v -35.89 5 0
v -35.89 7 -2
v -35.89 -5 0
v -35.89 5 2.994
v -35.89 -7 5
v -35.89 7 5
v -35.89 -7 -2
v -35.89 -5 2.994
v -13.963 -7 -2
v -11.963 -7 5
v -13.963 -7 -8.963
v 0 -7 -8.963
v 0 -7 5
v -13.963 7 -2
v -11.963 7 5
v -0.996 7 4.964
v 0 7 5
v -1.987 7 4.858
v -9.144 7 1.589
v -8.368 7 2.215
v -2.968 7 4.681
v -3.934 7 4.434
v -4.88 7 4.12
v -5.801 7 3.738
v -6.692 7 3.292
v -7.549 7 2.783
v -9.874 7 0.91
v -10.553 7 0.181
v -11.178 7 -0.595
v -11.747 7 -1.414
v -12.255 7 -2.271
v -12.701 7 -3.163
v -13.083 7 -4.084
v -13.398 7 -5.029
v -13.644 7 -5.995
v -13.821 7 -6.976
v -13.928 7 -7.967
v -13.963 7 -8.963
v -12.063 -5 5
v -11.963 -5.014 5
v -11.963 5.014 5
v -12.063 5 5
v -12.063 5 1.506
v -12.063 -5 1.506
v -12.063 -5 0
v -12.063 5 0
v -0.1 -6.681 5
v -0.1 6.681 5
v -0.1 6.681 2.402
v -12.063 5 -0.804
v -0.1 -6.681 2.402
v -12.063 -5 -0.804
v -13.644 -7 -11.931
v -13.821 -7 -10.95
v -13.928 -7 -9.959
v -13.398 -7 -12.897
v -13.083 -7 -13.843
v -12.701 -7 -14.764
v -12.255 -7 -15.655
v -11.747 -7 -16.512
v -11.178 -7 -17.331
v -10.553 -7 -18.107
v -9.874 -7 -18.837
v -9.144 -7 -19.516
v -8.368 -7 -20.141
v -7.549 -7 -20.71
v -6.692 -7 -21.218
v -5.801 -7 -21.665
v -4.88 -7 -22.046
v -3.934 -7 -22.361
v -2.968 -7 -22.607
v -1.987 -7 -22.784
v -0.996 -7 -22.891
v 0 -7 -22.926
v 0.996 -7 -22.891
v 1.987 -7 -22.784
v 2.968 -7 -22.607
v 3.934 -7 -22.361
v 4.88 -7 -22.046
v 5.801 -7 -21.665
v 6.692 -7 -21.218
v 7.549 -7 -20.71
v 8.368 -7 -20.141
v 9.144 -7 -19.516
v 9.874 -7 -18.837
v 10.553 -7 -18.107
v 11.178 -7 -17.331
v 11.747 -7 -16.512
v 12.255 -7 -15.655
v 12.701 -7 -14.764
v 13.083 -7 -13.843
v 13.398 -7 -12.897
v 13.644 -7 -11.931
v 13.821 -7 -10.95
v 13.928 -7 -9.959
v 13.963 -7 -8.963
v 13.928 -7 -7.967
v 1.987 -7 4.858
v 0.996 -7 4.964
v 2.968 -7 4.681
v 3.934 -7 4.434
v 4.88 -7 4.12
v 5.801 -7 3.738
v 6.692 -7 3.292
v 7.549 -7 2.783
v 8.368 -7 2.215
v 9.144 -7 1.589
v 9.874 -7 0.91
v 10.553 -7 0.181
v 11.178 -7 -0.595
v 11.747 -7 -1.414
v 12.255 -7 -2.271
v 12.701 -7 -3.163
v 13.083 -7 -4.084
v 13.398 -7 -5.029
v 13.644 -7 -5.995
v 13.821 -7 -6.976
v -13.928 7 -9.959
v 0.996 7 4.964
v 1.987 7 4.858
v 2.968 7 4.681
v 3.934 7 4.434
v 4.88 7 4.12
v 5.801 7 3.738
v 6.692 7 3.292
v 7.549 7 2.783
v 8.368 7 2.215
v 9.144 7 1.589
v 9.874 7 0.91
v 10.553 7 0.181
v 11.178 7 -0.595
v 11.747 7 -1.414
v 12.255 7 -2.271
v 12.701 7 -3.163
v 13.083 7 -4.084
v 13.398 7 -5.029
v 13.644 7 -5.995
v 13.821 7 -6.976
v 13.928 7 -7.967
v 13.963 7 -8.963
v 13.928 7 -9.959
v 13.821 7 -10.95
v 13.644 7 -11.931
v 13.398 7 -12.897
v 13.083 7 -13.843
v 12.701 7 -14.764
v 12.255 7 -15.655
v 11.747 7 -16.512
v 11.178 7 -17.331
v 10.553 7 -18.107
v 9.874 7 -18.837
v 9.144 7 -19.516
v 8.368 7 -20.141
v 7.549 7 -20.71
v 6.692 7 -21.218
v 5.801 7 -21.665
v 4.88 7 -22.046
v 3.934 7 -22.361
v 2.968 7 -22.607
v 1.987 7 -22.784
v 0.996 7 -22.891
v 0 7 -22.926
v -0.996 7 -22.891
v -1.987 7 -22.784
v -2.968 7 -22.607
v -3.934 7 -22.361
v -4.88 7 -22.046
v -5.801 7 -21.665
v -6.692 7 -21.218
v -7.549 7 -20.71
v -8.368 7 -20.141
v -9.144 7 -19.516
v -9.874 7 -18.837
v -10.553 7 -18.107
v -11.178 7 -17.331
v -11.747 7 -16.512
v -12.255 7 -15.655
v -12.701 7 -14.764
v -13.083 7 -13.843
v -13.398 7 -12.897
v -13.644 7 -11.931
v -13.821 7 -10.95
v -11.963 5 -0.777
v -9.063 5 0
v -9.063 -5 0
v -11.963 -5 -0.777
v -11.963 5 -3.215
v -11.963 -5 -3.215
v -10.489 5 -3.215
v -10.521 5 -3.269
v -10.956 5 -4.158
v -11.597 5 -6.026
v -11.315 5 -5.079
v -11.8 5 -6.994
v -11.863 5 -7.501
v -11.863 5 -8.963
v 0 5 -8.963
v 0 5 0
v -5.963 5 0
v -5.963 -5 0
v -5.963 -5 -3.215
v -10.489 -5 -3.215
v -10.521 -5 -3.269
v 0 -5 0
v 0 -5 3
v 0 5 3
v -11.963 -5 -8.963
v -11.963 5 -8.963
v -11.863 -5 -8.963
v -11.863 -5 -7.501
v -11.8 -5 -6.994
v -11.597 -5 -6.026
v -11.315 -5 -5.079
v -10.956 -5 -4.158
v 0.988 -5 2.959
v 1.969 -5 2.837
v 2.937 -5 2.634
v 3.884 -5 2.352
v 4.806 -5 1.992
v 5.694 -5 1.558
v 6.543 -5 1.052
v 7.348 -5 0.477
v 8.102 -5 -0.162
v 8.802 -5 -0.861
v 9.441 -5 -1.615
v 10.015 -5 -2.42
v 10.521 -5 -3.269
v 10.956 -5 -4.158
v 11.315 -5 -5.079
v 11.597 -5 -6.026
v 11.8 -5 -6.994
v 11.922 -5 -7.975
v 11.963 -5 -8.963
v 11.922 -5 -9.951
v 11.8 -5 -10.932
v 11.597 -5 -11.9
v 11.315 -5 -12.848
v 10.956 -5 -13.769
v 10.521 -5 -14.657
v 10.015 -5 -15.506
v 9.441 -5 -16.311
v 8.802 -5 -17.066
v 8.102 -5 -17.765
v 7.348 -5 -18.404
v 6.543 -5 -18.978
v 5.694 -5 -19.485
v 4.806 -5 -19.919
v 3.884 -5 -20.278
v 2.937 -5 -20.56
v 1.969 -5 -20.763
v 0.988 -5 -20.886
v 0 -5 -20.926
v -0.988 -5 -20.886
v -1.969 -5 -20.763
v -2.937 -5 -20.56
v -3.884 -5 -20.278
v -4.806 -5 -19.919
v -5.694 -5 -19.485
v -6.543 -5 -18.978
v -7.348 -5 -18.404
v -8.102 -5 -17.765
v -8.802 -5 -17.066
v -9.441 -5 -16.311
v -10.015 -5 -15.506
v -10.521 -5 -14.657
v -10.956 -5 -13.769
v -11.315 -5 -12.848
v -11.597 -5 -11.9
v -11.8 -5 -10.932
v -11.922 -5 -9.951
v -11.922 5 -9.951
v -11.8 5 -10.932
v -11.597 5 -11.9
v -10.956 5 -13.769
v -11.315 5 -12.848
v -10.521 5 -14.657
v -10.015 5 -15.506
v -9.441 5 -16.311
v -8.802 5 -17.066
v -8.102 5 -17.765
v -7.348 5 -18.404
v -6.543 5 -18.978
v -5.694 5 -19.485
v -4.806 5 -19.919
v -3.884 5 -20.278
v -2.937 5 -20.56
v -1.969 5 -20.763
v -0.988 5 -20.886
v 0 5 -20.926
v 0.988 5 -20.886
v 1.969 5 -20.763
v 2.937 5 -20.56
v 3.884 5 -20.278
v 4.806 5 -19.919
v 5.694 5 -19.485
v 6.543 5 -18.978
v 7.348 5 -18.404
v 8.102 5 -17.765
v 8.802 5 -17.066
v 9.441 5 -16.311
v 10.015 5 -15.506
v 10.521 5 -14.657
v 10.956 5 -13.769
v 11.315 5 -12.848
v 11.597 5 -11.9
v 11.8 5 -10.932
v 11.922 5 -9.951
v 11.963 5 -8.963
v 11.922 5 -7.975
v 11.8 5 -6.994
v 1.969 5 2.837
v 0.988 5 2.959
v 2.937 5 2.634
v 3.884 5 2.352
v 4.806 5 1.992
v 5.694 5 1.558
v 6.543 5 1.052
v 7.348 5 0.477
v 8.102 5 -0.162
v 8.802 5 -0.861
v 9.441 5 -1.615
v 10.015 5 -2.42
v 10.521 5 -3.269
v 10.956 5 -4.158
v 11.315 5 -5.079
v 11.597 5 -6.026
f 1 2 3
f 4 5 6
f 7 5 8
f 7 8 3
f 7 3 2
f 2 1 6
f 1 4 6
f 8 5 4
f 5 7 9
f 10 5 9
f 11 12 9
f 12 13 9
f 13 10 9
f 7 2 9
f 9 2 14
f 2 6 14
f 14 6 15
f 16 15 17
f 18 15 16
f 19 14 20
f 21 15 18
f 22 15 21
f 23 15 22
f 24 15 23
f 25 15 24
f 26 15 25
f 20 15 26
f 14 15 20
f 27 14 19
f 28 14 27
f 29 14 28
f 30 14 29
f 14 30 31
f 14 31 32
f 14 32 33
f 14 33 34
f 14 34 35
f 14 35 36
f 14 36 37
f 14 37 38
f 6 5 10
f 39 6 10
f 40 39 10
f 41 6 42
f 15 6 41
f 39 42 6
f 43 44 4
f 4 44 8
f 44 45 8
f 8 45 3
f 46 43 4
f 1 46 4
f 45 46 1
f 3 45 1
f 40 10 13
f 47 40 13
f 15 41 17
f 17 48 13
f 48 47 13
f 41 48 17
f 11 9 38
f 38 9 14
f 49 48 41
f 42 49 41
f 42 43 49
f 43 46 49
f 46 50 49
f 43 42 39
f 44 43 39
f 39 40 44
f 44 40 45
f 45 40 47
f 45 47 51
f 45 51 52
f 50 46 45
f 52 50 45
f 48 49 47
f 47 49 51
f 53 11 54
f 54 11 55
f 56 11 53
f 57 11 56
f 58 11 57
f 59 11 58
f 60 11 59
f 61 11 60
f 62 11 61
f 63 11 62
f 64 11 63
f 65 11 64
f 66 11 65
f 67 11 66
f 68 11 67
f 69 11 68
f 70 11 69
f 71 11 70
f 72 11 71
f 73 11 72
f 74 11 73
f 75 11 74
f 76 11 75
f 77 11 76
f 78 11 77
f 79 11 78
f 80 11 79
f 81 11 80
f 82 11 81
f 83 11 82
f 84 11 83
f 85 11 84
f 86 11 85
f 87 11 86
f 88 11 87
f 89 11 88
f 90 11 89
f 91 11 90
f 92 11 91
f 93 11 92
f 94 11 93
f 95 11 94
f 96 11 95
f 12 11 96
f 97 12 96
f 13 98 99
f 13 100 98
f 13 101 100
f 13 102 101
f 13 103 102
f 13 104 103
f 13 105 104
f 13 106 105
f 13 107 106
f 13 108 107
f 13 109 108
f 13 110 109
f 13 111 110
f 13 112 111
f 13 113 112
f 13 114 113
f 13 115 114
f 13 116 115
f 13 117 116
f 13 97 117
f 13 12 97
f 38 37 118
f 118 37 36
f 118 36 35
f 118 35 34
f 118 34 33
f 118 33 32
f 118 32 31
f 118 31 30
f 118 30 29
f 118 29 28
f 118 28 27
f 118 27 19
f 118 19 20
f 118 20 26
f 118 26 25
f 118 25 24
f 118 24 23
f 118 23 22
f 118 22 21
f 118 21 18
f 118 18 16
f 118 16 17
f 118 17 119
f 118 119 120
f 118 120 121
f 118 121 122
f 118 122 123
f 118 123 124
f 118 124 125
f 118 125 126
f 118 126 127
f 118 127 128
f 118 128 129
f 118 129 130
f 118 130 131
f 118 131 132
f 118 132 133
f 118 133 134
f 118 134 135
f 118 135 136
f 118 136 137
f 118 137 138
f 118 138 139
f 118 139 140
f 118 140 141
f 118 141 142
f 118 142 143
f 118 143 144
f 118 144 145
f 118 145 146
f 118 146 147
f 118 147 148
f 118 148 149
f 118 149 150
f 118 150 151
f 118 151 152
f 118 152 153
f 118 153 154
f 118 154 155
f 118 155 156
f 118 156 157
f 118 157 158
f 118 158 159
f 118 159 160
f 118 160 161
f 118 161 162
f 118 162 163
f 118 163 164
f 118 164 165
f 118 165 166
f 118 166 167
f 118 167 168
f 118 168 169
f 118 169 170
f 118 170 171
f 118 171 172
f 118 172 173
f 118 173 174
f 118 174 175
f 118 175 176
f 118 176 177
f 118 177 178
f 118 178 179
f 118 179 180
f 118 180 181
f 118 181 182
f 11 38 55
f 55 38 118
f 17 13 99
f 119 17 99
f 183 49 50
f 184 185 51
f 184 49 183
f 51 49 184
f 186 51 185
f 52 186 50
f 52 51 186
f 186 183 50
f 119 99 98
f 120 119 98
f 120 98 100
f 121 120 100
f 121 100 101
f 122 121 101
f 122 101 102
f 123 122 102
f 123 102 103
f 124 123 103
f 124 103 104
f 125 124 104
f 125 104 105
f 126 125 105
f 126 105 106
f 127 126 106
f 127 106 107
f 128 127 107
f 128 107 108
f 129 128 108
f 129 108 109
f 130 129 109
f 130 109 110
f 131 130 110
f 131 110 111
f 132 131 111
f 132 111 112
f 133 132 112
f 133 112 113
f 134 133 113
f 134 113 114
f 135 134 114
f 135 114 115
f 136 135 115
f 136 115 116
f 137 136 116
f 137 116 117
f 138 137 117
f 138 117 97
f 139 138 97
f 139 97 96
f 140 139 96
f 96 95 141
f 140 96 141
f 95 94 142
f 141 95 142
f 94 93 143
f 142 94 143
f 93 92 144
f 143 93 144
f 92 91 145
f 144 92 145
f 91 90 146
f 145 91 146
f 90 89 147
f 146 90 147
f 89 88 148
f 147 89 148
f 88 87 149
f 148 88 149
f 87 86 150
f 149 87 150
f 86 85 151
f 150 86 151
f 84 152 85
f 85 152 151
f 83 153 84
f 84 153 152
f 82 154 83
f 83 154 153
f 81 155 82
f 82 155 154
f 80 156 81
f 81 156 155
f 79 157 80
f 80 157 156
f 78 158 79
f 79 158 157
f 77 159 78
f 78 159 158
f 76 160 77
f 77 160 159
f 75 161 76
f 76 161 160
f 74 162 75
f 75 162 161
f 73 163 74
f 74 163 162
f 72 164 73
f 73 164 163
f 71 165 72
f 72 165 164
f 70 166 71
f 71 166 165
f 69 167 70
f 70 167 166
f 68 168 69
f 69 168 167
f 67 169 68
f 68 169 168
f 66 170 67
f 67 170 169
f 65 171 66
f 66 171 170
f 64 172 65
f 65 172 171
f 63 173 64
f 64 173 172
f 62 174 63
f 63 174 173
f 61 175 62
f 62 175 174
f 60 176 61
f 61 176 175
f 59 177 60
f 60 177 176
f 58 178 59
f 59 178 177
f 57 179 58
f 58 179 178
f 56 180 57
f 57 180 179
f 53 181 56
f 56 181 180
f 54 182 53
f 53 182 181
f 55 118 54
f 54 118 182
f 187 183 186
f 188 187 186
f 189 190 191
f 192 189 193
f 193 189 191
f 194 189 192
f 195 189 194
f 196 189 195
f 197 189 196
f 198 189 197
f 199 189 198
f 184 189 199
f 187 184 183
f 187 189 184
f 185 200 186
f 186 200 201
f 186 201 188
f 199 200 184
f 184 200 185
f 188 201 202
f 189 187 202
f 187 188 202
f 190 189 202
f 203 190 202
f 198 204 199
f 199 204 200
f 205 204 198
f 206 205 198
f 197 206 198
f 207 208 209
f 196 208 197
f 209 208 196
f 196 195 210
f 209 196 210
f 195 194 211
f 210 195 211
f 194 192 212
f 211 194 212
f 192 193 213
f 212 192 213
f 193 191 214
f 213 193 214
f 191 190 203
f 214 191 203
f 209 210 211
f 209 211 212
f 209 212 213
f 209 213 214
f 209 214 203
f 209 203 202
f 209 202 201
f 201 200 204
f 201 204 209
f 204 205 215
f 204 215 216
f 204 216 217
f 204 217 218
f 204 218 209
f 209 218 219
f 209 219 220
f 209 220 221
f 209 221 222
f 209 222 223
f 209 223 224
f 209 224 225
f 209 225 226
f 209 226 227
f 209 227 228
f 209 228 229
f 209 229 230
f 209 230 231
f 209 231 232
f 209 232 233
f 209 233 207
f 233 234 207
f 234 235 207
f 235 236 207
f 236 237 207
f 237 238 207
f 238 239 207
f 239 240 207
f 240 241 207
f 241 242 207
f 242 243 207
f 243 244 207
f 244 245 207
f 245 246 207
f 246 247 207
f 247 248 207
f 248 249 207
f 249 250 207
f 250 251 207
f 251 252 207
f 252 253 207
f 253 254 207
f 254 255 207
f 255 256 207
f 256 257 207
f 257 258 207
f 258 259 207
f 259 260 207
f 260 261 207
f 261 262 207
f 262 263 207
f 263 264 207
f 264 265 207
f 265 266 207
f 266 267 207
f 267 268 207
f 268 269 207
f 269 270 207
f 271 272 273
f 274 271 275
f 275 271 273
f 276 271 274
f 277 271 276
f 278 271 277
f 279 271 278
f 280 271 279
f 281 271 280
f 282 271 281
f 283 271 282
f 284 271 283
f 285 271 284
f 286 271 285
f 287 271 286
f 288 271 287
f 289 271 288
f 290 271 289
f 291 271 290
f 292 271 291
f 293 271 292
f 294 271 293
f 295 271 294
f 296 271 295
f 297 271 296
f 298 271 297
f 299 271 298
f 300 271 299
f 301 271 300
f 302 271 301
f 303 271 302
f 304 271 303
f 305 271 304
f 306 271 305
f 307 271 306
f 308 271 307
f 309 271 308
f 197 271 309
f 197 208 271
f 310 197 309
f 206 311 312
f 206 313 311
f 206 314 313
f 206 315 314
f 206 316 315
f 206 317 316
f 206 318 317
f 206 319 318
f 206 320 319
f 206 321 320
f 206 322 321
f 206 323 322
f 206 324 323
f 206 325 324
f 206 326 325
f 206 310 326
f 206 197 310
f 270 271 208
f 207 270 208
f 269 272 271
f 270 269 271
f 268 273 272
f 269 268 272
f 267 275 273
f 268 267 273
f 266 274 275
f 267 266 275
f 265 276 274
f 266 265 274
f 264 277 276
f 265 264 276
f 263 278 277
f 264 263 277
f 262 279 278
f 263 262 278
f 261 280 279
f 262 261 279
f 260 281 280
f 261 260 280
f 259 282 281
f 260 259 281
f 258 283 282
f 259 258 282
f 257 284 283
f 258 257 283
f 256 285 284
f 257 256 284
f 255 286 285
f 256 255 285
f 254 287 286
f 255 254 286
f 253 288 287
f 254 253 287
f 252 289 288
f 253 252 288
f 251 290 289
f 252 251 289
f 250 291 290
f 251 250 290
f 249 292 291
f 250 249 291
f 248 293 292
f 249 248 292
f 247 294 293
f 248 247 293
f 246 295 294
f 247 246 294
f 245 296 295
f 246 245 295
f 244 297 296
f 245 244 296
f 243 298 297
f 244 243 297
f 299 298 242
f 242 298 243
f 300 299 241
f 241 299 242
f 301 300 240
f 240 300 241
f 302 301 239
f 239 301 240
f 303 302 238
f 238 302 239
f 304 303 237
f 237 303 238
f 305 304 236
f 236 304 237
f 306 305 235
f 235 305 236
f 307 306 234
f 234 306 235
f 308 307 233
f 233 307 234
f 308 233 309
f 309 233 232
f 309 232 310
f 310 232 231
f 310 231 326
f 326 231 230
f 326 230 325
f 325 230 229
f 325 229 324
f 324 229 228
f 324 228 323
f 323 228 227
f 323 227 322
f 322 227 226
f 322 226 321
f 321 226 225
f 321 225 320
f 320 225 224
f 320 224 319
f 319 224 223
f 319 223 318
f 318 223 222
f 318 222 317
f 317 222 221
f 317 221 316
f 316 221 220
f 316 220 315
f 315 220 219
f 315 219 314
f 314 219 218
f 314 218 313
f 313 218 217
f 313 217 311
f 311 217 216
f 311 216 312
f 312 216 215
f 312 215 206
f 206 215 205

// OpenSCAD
E = 0.1;
$fa = 3;
$fs = 1;

FLUE_LENGTH = 30;
FLUE_WIDTH = 10;
FLUE_HEIGHT = 3;
FLUE_TAPER = 0.5;

TRUNCATE = 0.9;

GAP_LENGTH = FLUE_HEIGHT * FLUE_TAPER * 2;

EXIT_ANGLE = 15;
EXIT_FLARE = 8;

SOUND_MPS = 344;
C = SOUND_MPS * 1000 / 2 / PI;

// Misc wall thickness
THICKNESS = 2;

module whistle_ball(length=FLUE_LENGTH, width=FLUE_WIDTH, volume=10000) {
  r_body = cap_radius(volume, TRUNCATE);
  r_body_outer = r_body + THICKNESS;
  top = 2 * r_body_outer * TRUNCATE;

  ang = 40;
  difference() {
    union() {
      rotate(ang, v=[0, 1, 0])
        translate([0, 0, FLUE_HEIGHT / 2])
        mouthpiece(length, width);
      translate([0, 0, -top + 1.5 * FLUE_HEIGHT])
        ball(volume);
    }
    rotate(ang, v=[0, 1, 0])
      fipple_cut(length, width);
  }
}

module whistle_cylinder(flue_width=FLUE_WIDTH,
                        flue_height=FLUE_HEIGHT,
                        pitch=2000,
                        volume) {
  gap = flue_height * FLUE_TAPER * 2;
  area = gap * flue_width;
  width = flue_width + 2 * THICKNESS;
  // Effective length???
  length = THICKNESS + flue_height;
  echo("Effective mouth length", length);
  _volume = volume == undef ? volume_of(pitch, area, length) : volume;
  r = circle_radius(_volume / flue_width);
  flue_length = 2 * r;
  echo("Radius", r);
  difference() {
    union() {
      translate([-flue_length / 2 - r, 0, flue_height / 2])
        cube([flue_length, width, flue_height + 2 * THICKNESS], center=true);
      translate([0, 0, -r + flue_height])
        rotate(90, v=[1, 0, 0])
          difference() {
            cylinder(r=r + THICKNESS, h=width, center=true);
            cylinder(r=r, h=flue_width, center=true);
          }
      translate([-(r + THICKNESS) / 2, 0, -(r + THICKNESS) / 2 + flue_height + THICKNESS])
        difference() {
          cube([r + THICKNESS, width, r + THICKNESS], center=true);
          translate([THICKNESS + E, 0, -THICKNESS - flue_height])
            cube([r + THICKNESS, flue_width, r + THICKNESS], center=true);
        }
    }
  translate([-r, 0, 0])
    fipple_cut(flue_length, flue_width, cut_limit=r, cut_depth=flue_height + 3 * THICKNESS);
  }
}

function volume_of(pitch, area, length) = pow(C / pitch, 2) * area / length;

module mouthpiece(length, width) {
  translate([-length, 0, 0])
    scale([1, 1, 0.3])
      rotate(90, v=[0, 1, 0])
        cylinder(r=width * 0.9, h=length);
}

module ball(volume) {
  r_body = cap_radius(volume, TRUNCATE);
  r_body_outer = r_body + THICKNESS;

  top = 2 * r_body_outer * TRUNCATE;

  difference() {
    trunc_sphere(r_body_outer);
    translate([0, 0, THICKNESS])
      trunc_sphere(r_body);
  }
}

module pipe(length, width) {
  translate([0, 0, -width + THICKNESS])
    rotate(a=90, v=[0, 1, 0])
      difference() {
        // Body
        cylinder(r=width, h=length * 2, center=true);
        // Internal volume
        translate([0, 0, length / 2])
          cylinder(r=width - THICKNESS, h=length + 2 * E, center=true);
        // Mouthpiece curve
        translate([width * 1.7, 0, -length])
          rotate(a=90, v=[1, 0, 0])
            cylinder(r=width * 2, h = width * 3, center=true);
      }
}

/*
   Cut parts (using difference) to remove the windway (flue)
   and carve the labium (knife edge).

   The bottom of the windway is at the origin (z = 0).
*/
module fipple_cut(length=FLUE_LENGTH,
              width=FLUE_WIDTH,
              height=FLUE_HEIGHT,
              cut_angle=EXIT_ANGLE,
              flare_angle=EXIT_FLARE,
              cut_limit,
              cut_depth) {
  gap = height * FLUE_TAPER * 2;
  _cut_limit = cut_limit == undef ? 50 : cut_limit;
  _cut_depth = cut_depth == undef ? 50 : cut_depth;
  /* wind-way (flue)
     2----6
     |\   |\
     | 1----5
     3_|__7 |
      \|   \|
       0----4
  */

  polyhedron(
    points=[
      [-length - E, -width / 2, 0], [-length - E, -width / 2, height],
      [-length - E, width / 2, height], [-length - E, width / 2, 0],
      [0, -width / 2, 0], [0, -width / 2, height * FLUE_TAPER],
      [0, width / 2, height * FLUE_TAPER], [0, width / 2, 0]
    ],
    triangles=[
      [0, 3, 2], [0, 2, 1],
      [0, 1, 5], [0, 5, 4],
      [4, 5, 6], [4, 6, 7],
      [7, 6, 2], [7, 2, 3],
      [1, 2, 6], [1, 6, 5],
      [0, 4, 7], [0, 7, 3]
    ]);

  /* Mouth cut
            x1
        3---2    z2
        |   |
        |   1    z1
        |  /
        |/
        0       far side +4
  */
  undercut_depth = tan(EXIT_ANGLE) * gap;
  x1 = _cut_limit;
  z1 = x1 * tan(cut_angle);
  z2 = max(z1 + 1, _cut_depth);
  y1 = width / 2;
  y2 = width / 2 + x1 * tan(flare_angle);
  translate([-E, 0, -undercut_depth]) {
    polyhedron(
      points=[
        [0, -y1, 0], [x1, -y2, z1], [x1, -y2, z2], [0, -y1, z2],
        [0, y1, 0],  [x1, y2, z1],  [x1, y2, z2], [0, y1, z2]
      ],
      triangles=[
        [0, 3, 2], [0, 2, 1],  // front
        [4, 6, 7], [4, 5, 6],  // back
        [0, 4, 7], [0, 7, 3],  // left
        [1, 2, 6], [1, 6, 5],  // right
        [0, 1, 5], [0, 5, 4],  // bottom
        [2, 3, 7], [2, 7, 6]   // top
    ]);
  }

  // Cut underside of labium.
  translate([gap, 0, -2 * undercut_depth])
    cube([2 * gap, width, undercut_depth * 4], center=true);
}

module trunc_sphere(r) {
  difference() {
    translate([0, 0, 2 * r * (TRUNCATE - 0.5)])
      sphere(r);
    translate([0, 0, -r])
      cube([2 * r, 2 * r, 2 * r], center=true);
  }
}

/* Calculate radius of spherical cap of volume, v, and
   and percent of sphere, p (0 - 1).

   V = PI H^2 / 3 (3R - H)

   where H = 2R * P:

   V = 4 PI R^2 P^2 / 3 * (3R - 2R P)
     = 4 PI R^3 P^2 /  3 * (3 - 2 P)

   R = cube_root(3 V / (4 PI P^2 (3 - 2P))

   Note full sphere volume is 4/3 PI R^3
*/
function cap_radius(v, p) = pow(3 * v / (4 * PI * pow(p, 2) * (3 - 2 * p)), 1 / 3);

// A = PI R^2
// R = sqrt(A / PI)
function circle_radius(a) = sqrt(a / PI);

//whistle_ball();
whistle_cylinder();
//fipple_cut(20, 30);
